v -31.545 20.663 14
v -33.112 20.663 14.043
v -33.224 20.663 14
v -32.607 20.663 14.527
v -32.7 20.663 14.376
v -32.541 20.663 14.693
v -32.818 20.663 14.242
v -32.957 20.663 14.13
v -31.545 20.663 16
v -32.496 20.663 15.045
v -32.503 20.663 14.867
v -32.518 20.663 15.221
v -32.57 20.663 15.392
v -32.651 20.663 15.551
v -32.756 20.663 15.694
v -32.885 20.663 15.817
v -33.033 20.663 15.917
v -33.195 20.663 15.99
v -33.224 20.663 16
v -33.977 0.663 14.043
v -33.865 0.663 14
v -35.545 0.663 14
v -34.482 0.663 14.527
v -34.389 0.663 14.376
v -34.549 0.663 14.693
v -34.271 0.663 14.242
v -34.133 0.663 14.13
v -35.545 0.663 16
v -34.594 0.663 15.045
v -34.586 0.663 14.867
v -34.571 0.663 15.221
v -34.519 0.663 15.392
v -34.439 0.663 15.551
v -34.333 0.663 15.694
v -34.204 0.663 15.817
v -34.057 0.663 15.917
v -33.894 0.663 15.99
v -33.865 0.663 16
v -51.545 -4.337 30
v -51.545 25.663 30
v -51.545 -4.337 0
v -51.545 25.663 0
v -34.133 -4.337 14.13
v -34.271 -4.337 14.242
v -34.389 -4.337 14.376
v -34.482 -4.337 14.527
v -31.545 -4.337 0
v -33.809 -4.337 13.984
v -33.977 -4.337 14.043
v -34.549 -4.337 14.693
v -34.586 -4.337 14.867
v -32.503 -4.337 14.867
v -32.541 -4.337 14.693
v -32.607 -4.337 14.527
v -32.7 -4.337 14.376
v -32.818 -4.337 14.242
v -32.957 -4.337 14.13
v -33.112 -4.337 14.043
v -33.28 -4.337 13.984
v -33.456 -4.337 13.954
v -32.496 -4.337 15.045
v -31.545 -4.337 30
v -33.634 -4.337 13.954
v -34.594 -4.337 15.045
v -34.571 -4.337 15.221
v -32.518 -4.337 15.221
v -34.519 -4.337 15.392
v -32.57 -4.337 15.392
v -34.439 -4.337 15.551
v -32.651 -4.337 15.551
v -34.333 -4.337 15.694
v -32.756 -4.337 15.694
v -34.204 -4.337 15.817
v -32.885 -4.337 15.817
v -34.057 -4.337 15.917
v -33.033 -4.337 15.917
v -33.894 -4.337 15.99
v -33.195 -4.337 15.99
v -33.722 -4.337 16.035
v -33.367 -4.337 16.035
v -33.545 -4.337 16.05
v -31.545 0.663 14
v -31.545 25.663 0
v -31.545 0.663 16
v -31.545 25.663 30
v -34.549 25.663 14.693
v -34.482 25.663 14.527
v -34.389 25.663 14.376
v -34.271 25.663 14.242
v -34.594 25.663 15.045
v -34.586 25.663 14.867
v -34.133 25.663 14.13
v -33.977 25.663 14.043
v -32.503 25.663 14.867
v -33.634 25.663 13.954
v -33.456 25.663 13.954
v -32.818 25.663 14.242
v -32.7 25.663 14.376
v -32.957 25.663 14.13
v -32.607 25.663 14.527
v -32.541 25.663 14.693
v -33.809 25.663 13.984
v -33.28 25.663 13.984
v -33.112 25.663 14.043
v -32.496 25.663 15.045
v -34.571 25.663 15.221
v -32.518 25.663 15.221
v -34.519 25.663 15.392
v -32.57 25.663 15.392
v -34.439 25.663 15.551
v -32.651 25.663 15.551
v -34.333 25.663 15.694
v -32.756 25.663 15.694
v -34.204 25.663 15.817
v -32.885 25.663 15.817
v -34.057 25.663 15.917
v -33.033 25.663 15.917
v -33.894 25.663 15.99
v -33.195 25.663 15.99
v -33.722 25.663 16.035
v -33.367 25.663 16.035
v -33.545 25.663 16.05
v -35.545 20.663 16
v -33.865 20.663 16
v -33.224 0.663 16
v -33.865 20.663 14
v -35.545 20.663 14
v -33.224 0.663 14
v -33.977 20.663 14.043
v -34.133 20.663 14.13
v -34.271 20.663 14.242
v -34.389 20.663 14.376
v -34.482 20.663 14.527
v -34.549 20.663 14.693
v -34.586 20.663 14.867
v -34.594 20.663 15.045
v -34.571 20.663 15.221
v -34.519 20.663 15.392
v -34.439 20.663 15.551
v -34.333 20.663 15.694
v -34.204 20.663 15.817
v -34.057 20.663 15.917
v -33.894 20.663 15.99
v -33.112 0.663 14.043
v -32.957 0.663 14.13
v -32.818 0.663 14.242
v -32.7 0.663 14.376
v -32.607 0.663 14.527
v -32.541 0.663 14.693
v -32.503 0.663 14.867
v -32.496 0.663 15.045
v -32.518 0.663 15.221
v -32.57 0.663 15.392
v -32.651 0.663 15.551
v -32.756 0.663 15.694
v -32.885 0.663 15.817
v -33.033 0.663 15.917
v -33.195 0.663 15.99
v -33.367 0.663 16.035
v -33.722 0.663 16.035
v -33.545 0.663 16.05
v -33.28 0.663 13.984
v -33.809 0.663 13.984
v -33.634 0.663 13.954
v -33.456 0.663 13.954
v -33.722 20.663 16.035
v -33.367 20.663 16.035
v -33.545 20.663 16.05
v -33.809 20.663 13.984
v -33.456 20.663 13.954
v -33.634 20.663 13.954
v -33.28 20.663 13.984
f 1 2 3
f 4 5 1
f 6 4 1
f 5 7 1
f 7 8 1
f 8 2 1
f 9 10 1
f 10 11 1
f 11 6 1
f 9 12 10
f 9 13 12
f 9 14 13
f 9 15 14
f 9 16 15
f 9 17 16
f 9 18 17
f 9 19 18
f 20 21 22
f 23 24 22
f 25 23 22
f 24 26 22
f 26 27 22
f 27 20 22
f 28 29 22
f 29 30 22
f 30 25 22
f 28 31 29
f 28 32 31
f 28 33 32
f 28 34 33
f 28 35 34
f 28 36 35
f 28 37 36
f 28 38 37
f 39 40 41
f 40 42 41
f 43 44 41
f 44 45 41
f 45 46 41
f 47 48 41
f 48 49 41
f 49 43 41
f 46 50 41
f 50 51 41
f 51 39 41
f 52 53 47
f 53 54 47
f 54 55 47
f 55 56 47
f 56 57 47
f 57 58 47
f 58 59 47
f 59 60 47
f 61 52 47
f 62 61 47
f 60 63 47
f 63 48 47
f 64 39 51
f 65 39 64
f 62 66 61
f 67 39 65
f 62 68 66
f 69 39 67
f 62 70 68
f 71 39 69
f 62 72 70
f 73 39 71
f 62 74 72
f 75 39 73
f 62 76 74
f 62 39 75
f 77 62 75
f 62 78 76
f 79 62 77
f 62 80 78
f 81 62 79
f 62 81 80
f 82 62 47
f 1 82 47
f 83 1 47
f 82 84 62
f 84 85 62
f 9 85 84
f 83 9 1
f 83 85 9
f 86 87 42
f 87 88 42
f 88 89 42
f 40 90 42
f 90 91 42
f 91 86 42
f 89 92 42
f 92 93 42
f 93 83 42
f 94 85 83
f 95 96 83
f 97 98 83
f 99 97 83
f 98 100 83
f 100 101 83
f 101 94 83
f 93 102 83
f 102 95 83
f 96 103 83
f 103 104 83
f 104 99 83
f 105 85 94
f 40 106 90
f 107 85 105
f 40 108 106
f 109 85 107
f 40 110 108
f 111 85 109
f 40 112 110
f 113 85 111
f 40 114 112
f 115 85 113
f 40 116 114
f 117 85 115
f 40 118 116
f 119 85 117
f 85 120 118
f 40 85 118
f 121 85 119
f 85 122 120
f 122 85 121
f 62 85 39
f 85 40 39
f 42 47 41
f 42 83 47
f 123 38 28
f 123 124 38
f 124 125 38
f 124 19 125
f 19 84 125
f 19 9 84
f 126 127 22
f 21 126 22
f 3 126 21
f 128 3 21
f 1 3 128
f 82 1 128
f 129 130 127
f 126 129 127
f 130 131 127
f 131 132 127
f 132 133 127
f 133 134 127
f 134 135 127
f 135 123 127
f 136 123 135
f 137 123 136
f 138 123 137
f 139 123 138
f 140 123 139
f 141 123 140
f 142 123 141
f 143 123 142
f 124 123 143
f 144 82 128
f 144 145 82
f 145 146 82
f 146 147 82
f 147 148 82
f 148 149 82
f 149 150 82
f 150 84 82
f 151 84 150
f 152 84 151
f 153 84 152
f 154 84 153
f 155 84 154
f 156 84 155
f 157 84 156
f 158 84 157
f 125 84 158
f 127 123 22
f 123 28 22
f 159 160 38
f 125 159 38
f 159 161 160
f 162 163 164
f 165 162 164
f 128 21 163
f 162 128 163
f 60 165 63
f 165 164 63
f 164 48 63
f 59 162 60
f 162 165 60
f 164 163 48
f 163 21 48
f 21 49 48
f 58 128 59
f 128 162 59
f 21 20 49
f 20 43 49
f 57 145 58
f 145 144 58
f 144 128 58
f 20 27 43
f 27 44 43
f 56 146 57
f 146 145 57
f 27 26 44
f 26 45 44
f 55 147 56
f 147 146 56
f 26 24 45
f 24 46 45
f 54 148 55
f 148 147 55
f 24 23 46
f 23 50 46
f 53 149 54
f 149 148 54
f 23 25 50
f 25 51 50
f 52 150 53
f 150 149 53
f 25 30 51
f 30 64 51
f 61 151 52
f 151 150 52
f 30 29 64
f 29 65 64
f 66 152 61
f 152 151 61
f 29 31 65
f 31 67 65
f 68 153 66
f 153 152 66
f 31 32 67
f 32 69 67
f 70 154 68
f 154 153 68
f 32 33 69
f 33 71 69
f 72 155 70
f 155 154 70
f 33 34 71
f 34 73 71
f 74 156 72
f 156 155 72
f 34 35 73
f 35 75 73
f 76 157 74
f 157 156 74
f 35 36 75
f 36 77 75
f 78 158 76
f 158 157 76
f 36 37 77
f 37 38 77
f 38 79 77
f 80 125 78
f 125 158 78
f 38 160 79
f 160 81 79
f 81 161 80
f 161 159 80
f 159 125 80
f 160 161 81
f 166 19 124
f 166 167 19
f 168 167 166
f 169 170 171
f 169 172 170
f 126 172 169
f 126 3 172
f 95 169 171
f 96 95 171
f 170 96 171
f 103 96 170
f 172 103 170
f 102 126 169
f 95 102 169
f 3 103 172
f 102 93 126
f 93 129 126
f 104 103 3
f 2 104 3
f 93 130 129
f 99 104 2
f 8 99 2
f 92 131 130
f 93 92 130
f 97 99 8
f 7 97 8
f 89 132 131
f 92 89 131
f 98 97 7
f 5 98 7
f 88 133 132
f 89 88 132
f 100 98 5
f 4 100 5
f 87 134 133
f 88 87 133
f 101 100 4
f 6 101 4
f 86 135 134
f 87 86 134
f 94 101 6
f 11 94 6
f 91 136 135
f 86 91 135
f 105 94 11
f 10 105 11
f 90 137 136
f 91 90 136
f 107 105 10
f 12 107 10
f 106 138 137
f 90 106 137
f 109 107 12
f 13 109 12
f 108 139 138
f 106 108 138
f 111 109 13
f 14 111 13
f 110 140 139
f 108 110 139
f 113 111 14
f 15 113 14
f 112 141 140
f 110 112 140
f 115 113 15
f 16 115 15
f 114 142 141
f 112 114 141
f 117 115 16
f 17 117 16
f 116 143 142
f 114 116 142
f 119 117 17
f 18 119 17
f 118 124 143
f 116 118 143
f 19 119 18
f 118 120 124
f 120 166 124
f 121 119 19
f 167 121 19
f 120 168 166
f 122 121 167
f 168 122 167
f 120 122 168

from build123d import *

# Parameters (mm, degrees)
SKETCH_2_W               = 20
SKETCH_2_H               = 30
EXTRUDE_3_DEPTH          = 30
SKETCH_4_W               = 8
SKETCH_4_H               = 2
CUT_EXTRUDE_1_DEPTH      = 20
CUT_EXTRUDE_6_DEPTH      = 67.759624542
CUT_EXTRUDE_6_DEPTH_BACK = 5
CUT_EXTRUDE_7_DEPTH      = 5


with BuildPart() as part:
    # 草图2 → 凸台-拉伸3 (new body)
    with BuildSketch(Plane.XY):
        with Locations((-41.544616295, 10.663270327)):
            Rectangle(SKETCH_2_W, SKETCH_2_H)
    extrude(amount=EXTRUDE_3_DEPTH)

    # 草图4 → 切除-拉伸1 (cut)
    with BuildSketch(Plane(origin=(0, 0.663270327, 0), x_dir=(-1, 0, 0), z_dir=(0, -1, 0))):
        with Locations((31.544616295, -15)):
            Rectangle(SKETCH_4_W, SKETCH_4_H)
    extrude(amount=-CUT_EXTRUDE_1_DEPTH, mode=Mode.SUBTRACT)

    # 草图5 → 切除-拉伸6 (cut, two sides: drawn at the far end of the back side and taken through both)
    with BuildSketch(Plane.XZ.offset(4.336729673).offset(-CUT_EXTRUDE_6_DEPTH_BACK)):
        with BuildLine():
            Line((-34.594616295, 15), (-32.494616295, 15))
            ThreePointArc((-32.494616295, 15), (-33.544616295, 16.05), (-34.594616295, 15))
        make_face()
        with BuildLine():
            Line((-33.864772507, 14), (-33.224460083, 14))
            ThreePointArc((-33.224460083, 14), (-32.696481865, 14.380994355), (-32.494616295, 15))
            Line((-32.494616295, 15), (-34.594616295, 15))
            ThreePointArc((-34.594616295, 15), (-34.392750725, 14.380994355), (-33.864772507, 14))
        make_face()
        with BuildLine():
            ThreePointArc((-33.864772507, 14), (-33.544616295, 13.95), (-33.224460083, 14))
            Line((-33.224460083, 14), (-33.864772507, 14))
        make_face()
    extrude(amount=CUT_EXTRUDE_6_DEPTH + CUT_EXTRUDE_6_DEPTH_BACK, mode=Mode.SUBTRACT)

    # 草图7 → 切除-拉伸7 (cut)
    with BuildSketch(Plane(origin=(0, 25.663270327, 0), x_dir=(1, 0, 0), z_dir=(0, 1, 0))):
        with BuildLine():
            ThreePointArc((-32.494616295, -15), (-33.544616295, -13.95), (-34.594616295, -15))
            Line((-34.594616295, -15), (-32.494616295, -15))
        make_face()
        with BuildLine():
            Line((-32.494616295, -15), (-34.594616295, -15))
            ThreePointArc((-34.594616295, -15), (-33.544616295, -16.05), (-32.494616295, -15))
        make_face()
    extrude(amount=-CUT_EXTRUDE_7_DEPTH, mode=Mode.SUBTRACT)


solid = part.part
